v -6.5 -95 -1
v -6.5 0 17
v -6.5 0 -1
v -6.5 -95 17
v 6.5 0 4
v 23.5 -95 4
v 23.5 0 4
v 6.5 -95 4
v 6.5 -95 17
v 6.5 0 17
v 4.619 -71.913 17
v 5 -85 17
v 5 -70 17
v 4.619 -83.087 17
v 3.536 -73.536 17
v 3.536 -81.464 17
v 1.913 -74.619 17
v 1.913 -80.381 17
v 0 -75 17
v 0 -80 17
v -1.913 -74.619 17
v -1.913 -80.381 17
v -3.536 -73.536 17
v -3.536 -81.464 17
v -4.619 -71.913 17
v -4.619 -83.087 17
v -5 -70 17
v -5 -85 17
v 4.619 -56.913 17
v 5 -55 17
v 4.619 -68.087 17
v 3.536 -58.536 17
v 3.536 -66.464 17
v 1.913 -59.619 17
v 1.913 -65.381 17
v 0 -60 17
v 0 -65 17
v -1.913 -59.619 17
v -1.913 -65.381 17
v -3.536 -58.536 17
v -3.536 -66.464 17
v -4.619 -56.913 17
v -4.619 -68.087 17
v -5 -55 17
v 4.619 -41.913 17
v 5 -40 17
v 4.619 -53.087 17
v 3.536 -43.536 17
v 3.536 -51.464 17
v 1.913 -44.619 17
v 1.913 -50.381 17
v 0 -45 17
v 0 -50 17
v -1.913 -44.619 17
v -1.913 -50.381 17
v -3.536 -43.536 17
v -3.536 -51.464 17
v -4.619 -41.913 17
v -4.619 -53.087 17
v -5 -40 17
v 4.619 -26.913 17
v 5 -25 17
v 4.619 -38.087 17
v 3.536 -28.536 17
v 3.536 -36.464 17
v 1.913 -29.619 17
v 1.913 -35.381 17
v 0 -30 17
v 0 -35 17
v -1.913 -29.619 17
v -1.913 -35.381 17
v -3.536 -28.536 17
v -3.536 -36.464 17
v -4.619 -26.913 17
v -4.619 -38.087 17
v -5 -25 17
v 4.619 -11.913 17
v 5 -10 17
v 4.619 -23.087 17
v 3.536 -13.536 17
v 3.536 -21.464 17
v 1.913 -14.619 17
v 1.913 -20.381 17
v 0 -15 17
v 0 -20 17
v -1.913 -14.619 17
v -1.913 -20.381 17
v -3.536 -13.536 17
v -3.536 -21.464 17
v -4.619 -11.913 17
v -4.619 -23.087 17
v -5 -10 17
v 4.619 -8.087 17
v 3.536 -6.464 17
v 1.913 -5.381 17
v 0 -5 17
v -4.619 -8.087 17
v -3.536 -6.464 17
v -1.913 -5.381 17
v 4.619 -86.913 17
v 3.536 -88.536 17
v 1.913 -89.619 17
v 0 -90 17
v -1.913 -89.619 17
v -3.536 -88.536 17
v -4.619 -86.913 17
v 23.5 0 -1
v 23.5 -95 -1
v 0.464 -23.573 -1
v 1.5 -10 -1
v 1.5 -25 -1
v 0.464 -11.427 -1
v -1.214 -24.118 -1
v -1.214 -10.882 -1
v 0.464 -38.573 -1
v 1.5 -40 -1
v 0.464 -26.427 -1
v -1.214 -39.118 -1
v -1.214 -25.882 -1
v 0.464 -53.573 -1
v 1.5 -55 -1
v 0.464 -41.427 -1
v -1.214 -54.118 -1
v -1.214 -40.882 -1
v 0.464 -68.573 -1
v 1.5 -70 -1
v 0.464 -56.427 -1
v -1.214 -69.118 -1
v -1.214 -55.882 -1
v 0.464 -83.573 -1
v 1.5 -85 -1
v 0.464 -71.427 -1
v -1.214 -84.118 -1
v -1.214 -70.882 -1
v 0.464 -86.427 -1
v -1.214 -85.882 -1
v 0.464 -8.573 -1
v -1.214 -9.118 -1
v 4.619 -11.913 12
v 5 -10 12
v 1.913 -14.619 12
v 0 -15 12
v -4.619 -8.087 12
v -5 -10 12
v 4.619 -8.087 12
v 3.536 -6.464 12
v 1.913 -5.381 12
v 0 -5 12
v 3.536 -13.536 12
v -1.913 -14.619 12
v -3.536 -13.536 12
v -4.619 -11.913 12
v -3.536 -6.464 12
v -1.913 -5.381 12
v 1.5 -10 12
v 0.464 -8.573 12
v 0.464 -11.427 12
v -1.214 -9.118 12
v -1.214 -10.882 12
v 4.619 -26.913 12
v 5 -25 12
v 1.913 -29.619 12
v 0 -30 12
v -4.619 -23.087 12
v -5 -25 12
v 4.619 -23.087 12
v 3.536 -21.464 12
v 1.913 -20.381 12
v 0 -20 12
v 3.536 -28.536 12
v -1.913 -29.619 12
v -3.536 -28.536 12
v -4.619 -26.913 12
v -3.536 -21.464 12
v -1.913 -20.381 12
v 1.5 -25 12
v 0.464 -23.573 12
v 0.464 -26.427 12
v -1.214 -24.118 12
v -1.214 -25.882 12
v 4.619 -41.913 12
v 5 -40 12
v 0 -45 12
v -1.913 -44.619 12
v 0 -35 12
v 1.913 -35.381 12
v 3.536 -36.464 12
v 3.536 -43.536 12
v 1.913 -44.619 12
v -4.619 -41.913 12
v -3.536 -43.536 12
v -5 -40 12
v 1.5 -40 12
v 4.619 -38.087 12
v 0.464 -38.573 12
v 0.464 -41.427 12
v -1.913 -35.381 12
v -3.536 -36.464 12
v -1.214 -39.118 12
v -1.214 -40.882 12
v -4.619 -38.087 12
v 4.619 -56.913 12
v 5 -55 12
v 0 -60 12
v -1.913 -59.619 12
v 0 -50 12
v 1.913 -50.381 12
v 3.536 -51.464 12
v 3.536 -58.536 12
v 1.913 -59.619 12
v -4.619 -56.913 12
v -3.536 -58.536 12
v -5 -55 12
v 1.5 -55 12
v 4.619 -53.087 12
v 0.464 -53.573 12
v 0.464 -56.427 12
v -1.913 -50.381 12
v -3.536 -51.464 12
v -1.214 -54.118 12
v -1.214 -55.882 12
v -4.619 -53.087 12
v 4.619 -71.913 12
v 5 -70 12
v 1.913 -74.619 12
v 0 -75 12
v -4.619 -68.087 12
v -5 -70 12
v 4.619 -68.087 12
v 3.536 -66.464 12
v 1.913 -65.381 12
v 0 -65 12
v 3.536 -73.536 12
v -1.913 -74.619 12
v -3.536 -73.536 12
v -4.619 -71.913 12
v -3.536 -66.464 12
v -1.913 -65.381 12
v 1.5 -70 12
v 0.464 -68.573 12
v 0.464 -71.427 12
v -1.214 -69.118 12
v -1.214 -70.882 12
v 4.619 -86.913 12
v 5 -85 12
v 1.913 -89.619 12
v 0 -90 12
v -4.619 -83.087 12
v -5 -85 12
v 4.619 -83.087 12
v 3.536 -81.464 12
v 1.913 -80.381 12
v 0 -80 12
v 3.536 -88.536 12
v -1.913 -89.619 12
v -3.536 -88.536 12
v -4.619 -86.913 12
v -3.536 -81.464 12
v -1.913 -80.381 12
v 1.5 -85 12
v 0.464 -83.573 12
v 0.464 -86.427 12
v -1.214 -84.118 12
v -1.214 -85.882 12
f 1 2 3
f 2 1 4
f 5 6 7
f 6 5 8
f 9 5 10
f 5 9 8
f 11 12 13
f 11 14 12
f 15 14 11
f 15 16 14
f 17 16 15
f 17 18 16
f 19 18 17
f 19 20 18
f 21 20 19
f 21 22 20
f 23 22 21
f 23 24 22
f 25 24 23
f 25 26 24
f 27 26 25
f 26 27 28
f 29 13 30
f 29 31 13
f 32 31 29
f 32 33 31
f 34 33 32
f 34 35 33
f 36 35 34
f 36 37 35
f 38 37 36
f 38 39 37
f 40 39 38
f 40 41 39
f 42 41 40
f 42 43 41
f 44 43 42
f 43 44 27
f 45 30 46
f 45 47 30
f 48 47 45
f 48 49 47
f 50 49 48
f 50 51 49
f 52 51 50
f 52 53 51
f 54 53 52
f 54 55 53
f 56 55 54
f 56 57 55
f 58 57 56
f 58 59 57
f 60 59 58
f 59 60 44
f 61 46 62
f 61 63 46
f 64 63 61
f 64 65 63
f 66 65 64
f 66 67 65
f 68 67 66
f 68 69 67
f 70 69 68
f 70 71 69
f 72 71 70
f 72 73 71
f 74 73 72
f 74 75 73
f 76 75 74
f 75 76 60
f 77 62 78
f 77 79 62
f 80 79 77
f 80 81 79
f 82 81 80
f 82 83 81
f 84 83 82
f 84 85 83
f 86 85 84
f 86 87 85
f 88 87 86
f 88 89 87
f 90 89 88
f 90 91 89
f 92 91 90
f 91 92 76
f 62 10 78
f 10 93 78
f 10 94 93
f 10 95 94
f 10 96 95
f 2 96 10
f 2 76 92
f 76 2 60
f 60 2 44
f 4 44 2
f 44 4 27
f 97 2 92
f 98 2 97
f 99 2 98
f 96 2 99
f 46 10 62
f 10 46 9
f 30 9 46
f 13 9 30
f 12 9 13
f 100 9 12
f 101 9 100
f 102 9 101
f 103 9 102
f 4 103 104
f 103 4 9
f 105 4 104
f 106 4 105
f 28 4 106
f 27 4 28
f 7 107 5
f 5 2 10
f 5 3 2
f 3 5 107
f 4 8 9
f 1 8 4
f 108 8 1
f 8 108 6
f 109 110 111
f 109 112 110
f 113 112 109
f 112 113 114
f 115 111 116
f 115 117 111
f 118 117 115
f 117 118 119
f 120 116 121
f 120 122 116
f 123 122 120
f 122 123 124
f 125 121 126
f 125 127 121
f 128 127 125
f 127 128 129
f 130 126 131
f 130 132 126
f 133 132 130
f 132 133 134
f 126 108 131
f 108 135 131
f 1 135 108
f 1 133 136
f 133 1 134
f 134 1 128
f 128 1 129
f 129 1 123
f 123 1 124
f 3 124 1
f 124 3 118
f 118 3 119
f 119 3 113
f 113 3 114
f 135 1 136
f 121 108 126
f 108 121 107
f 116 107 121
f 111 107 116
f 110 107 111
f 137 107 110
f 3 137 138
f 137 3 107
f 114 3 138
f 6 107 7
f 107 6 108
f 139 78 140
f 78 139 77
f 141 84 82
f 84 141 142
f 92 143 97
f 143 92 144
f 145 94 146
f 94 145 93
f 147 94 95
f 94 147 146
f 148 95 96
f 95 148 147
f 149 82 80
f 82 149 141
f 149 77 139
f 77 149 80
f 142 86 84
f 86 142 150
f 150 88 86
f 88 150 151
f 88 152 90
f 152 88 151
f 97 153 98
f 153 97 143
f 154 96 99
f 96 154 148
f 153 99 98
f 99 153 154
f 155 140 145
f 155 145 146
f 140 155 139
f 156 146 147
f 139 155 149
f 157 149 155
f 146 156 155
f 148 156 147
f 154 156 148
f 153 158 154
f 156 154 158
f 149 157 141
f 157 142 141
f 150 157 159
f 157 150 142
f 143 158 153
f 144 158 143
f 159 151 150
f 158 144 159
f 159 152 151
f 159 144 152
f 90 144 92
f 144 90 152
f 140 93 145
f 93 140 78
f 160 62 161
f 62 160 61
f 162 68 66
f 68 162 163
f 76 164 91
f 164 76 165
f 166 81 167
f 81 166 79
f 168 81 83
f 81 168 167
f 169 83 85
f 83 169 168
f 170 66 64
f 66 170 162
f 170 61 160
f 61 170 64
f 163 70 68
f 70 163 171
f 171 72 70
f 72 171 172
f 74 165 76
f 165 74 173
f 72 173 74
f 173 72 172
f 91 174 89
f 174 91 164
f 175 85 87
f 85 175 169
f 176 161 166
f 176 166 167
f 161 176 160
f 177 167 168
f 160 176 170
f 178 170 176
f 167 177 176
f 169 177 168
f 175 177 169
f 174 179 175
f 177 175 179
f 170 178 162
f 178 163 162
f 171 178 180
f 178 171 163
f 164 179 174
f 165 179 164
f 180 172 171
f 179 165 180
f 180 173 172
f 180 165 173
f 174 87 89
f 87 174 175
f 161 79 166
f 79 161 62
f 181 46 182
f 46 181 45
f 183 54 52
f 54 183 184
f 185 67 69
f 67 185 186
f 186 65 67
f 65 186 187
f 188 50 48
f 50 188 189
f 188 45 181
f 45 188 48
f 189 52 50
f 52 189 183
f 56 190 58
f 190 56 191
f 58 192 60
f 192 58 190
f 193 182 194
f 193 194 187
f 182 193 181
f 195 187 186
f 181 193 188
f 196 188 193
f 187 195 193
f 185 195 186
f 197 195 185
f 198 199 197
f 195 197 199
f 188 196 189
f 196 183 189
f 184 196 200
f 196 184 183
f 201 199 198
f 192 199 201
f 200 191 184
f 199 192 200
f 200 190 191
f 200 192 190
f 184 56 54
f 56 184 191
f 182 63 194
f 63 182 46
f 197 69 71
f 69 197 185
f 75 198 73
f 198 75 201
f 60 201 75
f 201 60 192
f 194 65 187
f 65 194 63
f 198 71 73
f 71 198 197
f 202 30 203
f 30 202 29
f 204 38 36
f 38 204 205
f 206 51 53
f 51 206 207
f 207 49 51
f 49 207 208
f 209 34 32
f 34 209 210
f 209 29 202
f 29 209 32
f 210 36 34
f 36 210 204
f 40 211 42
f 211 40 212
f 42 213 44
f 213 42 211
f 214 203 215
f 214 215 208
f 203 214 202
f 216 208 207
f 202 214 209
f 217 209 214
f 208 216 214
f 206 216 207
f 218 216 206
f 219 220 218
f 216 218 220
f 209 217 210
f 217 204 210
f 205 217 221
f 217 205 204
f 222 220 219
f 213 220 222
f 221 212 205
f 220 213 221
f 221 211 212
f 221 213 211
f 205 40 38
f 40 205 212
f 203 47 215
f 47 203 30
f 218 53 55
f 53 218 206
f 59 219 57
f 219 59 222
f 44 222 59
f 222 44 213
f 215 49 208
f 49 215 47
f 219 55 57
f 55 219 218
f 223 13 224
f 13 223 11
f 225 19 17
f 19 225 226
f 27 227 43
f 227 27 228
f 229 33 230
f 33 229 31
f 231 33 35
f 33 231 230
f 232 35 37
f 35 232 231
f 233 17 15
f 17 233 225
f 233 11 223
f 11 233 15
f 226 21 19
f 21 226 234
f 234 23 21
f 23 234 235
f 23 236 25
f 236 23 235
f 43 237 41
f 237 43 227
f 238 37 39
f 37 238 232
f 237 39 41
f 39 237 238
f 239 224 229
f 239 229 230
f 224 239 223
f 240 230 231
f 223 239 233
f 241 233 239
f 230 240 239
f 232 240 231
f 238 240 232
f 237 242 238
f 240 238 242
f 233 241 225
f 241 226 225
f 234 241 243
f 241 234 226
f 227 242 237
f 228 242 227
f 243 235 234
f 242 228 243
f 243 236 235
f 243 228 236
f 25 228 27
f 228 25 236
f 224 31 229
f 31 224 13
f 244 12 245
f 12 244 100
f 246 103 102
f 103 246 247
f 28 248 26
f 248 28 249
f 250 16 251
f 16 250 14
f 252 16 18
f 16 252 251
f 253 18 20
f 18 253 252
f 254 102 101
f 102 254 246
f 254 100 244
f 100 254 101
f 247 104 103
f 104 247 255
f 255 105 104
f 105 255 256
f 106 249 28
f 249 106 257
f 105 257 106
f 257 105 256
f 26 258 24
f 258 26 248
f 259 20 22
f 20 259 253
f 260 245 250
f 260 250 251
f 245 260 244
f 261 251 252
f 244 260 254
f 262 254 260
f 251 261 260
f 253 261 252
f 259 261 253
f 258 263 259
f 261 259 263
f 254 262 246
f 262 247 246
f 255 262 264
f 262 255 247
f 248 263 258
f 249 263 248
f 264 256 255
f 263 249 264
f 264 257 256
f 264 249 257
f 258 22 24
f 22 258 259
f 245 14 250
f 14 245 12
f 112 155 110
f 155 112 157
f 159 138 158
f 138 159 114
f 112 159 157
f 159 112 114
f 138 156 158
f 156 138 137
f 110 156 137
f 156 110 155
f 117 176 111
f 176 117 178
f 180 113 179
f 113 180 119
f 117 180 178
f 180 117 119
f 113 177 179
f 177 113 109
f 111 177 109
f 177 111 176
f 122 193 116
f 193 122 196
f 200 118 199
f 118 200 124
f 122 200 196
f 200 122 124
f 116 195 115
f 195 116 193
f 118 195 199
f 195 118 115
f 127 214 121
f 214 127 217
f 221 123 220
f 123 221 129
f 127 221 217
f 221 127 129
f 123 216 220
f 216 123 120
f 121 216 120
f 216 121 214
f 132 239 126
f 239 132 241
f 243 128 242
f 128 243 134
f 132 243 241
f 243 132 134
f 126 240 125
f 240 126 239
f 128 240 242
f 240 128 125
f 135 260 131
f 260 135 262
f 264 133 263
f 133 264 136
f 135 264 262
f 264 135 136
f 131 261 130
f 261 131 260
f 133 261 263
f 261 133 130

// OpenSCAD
module base()
{
    translate([-6.5,0,0]) cube([13,95,13]);
    translate([-6.5,0,13]) cube([30,95,5]);
    
}

module theholder()
{
  difference(){
    base();
    translate([0,10,0]) cylinder(r=5,h=5);
    translate([0,25,0]) cylinder(r=5,h=5);
    translate([0,40,0]) cylinder(r=5,h=5);
    translate([0,55,0]) cylinder(r=5,h=5);
    translate([0,70,0]) cylinder(r=5,h=5);
    translate([0,85,0]) cylinder(r=5,h=5);
    translate([0,10,0]) cylinder(r=1.5,h=20);
    translate([0,25,0]) cylinder(r=1.5,h=20);
    translate([0,40,0]) cylinder(r=1.5,h=20);
    translate([0,55,0]) cylinder(r=1.5,h=20);
    translate([0,70,0]) cylinder(r=1.5,h=20);
    translate([0,85,0]) cylinder(r=1.5,h=20);
     }
   }
   
   rotate([180,0,0]) translate([0,0,-17]) theholder();
